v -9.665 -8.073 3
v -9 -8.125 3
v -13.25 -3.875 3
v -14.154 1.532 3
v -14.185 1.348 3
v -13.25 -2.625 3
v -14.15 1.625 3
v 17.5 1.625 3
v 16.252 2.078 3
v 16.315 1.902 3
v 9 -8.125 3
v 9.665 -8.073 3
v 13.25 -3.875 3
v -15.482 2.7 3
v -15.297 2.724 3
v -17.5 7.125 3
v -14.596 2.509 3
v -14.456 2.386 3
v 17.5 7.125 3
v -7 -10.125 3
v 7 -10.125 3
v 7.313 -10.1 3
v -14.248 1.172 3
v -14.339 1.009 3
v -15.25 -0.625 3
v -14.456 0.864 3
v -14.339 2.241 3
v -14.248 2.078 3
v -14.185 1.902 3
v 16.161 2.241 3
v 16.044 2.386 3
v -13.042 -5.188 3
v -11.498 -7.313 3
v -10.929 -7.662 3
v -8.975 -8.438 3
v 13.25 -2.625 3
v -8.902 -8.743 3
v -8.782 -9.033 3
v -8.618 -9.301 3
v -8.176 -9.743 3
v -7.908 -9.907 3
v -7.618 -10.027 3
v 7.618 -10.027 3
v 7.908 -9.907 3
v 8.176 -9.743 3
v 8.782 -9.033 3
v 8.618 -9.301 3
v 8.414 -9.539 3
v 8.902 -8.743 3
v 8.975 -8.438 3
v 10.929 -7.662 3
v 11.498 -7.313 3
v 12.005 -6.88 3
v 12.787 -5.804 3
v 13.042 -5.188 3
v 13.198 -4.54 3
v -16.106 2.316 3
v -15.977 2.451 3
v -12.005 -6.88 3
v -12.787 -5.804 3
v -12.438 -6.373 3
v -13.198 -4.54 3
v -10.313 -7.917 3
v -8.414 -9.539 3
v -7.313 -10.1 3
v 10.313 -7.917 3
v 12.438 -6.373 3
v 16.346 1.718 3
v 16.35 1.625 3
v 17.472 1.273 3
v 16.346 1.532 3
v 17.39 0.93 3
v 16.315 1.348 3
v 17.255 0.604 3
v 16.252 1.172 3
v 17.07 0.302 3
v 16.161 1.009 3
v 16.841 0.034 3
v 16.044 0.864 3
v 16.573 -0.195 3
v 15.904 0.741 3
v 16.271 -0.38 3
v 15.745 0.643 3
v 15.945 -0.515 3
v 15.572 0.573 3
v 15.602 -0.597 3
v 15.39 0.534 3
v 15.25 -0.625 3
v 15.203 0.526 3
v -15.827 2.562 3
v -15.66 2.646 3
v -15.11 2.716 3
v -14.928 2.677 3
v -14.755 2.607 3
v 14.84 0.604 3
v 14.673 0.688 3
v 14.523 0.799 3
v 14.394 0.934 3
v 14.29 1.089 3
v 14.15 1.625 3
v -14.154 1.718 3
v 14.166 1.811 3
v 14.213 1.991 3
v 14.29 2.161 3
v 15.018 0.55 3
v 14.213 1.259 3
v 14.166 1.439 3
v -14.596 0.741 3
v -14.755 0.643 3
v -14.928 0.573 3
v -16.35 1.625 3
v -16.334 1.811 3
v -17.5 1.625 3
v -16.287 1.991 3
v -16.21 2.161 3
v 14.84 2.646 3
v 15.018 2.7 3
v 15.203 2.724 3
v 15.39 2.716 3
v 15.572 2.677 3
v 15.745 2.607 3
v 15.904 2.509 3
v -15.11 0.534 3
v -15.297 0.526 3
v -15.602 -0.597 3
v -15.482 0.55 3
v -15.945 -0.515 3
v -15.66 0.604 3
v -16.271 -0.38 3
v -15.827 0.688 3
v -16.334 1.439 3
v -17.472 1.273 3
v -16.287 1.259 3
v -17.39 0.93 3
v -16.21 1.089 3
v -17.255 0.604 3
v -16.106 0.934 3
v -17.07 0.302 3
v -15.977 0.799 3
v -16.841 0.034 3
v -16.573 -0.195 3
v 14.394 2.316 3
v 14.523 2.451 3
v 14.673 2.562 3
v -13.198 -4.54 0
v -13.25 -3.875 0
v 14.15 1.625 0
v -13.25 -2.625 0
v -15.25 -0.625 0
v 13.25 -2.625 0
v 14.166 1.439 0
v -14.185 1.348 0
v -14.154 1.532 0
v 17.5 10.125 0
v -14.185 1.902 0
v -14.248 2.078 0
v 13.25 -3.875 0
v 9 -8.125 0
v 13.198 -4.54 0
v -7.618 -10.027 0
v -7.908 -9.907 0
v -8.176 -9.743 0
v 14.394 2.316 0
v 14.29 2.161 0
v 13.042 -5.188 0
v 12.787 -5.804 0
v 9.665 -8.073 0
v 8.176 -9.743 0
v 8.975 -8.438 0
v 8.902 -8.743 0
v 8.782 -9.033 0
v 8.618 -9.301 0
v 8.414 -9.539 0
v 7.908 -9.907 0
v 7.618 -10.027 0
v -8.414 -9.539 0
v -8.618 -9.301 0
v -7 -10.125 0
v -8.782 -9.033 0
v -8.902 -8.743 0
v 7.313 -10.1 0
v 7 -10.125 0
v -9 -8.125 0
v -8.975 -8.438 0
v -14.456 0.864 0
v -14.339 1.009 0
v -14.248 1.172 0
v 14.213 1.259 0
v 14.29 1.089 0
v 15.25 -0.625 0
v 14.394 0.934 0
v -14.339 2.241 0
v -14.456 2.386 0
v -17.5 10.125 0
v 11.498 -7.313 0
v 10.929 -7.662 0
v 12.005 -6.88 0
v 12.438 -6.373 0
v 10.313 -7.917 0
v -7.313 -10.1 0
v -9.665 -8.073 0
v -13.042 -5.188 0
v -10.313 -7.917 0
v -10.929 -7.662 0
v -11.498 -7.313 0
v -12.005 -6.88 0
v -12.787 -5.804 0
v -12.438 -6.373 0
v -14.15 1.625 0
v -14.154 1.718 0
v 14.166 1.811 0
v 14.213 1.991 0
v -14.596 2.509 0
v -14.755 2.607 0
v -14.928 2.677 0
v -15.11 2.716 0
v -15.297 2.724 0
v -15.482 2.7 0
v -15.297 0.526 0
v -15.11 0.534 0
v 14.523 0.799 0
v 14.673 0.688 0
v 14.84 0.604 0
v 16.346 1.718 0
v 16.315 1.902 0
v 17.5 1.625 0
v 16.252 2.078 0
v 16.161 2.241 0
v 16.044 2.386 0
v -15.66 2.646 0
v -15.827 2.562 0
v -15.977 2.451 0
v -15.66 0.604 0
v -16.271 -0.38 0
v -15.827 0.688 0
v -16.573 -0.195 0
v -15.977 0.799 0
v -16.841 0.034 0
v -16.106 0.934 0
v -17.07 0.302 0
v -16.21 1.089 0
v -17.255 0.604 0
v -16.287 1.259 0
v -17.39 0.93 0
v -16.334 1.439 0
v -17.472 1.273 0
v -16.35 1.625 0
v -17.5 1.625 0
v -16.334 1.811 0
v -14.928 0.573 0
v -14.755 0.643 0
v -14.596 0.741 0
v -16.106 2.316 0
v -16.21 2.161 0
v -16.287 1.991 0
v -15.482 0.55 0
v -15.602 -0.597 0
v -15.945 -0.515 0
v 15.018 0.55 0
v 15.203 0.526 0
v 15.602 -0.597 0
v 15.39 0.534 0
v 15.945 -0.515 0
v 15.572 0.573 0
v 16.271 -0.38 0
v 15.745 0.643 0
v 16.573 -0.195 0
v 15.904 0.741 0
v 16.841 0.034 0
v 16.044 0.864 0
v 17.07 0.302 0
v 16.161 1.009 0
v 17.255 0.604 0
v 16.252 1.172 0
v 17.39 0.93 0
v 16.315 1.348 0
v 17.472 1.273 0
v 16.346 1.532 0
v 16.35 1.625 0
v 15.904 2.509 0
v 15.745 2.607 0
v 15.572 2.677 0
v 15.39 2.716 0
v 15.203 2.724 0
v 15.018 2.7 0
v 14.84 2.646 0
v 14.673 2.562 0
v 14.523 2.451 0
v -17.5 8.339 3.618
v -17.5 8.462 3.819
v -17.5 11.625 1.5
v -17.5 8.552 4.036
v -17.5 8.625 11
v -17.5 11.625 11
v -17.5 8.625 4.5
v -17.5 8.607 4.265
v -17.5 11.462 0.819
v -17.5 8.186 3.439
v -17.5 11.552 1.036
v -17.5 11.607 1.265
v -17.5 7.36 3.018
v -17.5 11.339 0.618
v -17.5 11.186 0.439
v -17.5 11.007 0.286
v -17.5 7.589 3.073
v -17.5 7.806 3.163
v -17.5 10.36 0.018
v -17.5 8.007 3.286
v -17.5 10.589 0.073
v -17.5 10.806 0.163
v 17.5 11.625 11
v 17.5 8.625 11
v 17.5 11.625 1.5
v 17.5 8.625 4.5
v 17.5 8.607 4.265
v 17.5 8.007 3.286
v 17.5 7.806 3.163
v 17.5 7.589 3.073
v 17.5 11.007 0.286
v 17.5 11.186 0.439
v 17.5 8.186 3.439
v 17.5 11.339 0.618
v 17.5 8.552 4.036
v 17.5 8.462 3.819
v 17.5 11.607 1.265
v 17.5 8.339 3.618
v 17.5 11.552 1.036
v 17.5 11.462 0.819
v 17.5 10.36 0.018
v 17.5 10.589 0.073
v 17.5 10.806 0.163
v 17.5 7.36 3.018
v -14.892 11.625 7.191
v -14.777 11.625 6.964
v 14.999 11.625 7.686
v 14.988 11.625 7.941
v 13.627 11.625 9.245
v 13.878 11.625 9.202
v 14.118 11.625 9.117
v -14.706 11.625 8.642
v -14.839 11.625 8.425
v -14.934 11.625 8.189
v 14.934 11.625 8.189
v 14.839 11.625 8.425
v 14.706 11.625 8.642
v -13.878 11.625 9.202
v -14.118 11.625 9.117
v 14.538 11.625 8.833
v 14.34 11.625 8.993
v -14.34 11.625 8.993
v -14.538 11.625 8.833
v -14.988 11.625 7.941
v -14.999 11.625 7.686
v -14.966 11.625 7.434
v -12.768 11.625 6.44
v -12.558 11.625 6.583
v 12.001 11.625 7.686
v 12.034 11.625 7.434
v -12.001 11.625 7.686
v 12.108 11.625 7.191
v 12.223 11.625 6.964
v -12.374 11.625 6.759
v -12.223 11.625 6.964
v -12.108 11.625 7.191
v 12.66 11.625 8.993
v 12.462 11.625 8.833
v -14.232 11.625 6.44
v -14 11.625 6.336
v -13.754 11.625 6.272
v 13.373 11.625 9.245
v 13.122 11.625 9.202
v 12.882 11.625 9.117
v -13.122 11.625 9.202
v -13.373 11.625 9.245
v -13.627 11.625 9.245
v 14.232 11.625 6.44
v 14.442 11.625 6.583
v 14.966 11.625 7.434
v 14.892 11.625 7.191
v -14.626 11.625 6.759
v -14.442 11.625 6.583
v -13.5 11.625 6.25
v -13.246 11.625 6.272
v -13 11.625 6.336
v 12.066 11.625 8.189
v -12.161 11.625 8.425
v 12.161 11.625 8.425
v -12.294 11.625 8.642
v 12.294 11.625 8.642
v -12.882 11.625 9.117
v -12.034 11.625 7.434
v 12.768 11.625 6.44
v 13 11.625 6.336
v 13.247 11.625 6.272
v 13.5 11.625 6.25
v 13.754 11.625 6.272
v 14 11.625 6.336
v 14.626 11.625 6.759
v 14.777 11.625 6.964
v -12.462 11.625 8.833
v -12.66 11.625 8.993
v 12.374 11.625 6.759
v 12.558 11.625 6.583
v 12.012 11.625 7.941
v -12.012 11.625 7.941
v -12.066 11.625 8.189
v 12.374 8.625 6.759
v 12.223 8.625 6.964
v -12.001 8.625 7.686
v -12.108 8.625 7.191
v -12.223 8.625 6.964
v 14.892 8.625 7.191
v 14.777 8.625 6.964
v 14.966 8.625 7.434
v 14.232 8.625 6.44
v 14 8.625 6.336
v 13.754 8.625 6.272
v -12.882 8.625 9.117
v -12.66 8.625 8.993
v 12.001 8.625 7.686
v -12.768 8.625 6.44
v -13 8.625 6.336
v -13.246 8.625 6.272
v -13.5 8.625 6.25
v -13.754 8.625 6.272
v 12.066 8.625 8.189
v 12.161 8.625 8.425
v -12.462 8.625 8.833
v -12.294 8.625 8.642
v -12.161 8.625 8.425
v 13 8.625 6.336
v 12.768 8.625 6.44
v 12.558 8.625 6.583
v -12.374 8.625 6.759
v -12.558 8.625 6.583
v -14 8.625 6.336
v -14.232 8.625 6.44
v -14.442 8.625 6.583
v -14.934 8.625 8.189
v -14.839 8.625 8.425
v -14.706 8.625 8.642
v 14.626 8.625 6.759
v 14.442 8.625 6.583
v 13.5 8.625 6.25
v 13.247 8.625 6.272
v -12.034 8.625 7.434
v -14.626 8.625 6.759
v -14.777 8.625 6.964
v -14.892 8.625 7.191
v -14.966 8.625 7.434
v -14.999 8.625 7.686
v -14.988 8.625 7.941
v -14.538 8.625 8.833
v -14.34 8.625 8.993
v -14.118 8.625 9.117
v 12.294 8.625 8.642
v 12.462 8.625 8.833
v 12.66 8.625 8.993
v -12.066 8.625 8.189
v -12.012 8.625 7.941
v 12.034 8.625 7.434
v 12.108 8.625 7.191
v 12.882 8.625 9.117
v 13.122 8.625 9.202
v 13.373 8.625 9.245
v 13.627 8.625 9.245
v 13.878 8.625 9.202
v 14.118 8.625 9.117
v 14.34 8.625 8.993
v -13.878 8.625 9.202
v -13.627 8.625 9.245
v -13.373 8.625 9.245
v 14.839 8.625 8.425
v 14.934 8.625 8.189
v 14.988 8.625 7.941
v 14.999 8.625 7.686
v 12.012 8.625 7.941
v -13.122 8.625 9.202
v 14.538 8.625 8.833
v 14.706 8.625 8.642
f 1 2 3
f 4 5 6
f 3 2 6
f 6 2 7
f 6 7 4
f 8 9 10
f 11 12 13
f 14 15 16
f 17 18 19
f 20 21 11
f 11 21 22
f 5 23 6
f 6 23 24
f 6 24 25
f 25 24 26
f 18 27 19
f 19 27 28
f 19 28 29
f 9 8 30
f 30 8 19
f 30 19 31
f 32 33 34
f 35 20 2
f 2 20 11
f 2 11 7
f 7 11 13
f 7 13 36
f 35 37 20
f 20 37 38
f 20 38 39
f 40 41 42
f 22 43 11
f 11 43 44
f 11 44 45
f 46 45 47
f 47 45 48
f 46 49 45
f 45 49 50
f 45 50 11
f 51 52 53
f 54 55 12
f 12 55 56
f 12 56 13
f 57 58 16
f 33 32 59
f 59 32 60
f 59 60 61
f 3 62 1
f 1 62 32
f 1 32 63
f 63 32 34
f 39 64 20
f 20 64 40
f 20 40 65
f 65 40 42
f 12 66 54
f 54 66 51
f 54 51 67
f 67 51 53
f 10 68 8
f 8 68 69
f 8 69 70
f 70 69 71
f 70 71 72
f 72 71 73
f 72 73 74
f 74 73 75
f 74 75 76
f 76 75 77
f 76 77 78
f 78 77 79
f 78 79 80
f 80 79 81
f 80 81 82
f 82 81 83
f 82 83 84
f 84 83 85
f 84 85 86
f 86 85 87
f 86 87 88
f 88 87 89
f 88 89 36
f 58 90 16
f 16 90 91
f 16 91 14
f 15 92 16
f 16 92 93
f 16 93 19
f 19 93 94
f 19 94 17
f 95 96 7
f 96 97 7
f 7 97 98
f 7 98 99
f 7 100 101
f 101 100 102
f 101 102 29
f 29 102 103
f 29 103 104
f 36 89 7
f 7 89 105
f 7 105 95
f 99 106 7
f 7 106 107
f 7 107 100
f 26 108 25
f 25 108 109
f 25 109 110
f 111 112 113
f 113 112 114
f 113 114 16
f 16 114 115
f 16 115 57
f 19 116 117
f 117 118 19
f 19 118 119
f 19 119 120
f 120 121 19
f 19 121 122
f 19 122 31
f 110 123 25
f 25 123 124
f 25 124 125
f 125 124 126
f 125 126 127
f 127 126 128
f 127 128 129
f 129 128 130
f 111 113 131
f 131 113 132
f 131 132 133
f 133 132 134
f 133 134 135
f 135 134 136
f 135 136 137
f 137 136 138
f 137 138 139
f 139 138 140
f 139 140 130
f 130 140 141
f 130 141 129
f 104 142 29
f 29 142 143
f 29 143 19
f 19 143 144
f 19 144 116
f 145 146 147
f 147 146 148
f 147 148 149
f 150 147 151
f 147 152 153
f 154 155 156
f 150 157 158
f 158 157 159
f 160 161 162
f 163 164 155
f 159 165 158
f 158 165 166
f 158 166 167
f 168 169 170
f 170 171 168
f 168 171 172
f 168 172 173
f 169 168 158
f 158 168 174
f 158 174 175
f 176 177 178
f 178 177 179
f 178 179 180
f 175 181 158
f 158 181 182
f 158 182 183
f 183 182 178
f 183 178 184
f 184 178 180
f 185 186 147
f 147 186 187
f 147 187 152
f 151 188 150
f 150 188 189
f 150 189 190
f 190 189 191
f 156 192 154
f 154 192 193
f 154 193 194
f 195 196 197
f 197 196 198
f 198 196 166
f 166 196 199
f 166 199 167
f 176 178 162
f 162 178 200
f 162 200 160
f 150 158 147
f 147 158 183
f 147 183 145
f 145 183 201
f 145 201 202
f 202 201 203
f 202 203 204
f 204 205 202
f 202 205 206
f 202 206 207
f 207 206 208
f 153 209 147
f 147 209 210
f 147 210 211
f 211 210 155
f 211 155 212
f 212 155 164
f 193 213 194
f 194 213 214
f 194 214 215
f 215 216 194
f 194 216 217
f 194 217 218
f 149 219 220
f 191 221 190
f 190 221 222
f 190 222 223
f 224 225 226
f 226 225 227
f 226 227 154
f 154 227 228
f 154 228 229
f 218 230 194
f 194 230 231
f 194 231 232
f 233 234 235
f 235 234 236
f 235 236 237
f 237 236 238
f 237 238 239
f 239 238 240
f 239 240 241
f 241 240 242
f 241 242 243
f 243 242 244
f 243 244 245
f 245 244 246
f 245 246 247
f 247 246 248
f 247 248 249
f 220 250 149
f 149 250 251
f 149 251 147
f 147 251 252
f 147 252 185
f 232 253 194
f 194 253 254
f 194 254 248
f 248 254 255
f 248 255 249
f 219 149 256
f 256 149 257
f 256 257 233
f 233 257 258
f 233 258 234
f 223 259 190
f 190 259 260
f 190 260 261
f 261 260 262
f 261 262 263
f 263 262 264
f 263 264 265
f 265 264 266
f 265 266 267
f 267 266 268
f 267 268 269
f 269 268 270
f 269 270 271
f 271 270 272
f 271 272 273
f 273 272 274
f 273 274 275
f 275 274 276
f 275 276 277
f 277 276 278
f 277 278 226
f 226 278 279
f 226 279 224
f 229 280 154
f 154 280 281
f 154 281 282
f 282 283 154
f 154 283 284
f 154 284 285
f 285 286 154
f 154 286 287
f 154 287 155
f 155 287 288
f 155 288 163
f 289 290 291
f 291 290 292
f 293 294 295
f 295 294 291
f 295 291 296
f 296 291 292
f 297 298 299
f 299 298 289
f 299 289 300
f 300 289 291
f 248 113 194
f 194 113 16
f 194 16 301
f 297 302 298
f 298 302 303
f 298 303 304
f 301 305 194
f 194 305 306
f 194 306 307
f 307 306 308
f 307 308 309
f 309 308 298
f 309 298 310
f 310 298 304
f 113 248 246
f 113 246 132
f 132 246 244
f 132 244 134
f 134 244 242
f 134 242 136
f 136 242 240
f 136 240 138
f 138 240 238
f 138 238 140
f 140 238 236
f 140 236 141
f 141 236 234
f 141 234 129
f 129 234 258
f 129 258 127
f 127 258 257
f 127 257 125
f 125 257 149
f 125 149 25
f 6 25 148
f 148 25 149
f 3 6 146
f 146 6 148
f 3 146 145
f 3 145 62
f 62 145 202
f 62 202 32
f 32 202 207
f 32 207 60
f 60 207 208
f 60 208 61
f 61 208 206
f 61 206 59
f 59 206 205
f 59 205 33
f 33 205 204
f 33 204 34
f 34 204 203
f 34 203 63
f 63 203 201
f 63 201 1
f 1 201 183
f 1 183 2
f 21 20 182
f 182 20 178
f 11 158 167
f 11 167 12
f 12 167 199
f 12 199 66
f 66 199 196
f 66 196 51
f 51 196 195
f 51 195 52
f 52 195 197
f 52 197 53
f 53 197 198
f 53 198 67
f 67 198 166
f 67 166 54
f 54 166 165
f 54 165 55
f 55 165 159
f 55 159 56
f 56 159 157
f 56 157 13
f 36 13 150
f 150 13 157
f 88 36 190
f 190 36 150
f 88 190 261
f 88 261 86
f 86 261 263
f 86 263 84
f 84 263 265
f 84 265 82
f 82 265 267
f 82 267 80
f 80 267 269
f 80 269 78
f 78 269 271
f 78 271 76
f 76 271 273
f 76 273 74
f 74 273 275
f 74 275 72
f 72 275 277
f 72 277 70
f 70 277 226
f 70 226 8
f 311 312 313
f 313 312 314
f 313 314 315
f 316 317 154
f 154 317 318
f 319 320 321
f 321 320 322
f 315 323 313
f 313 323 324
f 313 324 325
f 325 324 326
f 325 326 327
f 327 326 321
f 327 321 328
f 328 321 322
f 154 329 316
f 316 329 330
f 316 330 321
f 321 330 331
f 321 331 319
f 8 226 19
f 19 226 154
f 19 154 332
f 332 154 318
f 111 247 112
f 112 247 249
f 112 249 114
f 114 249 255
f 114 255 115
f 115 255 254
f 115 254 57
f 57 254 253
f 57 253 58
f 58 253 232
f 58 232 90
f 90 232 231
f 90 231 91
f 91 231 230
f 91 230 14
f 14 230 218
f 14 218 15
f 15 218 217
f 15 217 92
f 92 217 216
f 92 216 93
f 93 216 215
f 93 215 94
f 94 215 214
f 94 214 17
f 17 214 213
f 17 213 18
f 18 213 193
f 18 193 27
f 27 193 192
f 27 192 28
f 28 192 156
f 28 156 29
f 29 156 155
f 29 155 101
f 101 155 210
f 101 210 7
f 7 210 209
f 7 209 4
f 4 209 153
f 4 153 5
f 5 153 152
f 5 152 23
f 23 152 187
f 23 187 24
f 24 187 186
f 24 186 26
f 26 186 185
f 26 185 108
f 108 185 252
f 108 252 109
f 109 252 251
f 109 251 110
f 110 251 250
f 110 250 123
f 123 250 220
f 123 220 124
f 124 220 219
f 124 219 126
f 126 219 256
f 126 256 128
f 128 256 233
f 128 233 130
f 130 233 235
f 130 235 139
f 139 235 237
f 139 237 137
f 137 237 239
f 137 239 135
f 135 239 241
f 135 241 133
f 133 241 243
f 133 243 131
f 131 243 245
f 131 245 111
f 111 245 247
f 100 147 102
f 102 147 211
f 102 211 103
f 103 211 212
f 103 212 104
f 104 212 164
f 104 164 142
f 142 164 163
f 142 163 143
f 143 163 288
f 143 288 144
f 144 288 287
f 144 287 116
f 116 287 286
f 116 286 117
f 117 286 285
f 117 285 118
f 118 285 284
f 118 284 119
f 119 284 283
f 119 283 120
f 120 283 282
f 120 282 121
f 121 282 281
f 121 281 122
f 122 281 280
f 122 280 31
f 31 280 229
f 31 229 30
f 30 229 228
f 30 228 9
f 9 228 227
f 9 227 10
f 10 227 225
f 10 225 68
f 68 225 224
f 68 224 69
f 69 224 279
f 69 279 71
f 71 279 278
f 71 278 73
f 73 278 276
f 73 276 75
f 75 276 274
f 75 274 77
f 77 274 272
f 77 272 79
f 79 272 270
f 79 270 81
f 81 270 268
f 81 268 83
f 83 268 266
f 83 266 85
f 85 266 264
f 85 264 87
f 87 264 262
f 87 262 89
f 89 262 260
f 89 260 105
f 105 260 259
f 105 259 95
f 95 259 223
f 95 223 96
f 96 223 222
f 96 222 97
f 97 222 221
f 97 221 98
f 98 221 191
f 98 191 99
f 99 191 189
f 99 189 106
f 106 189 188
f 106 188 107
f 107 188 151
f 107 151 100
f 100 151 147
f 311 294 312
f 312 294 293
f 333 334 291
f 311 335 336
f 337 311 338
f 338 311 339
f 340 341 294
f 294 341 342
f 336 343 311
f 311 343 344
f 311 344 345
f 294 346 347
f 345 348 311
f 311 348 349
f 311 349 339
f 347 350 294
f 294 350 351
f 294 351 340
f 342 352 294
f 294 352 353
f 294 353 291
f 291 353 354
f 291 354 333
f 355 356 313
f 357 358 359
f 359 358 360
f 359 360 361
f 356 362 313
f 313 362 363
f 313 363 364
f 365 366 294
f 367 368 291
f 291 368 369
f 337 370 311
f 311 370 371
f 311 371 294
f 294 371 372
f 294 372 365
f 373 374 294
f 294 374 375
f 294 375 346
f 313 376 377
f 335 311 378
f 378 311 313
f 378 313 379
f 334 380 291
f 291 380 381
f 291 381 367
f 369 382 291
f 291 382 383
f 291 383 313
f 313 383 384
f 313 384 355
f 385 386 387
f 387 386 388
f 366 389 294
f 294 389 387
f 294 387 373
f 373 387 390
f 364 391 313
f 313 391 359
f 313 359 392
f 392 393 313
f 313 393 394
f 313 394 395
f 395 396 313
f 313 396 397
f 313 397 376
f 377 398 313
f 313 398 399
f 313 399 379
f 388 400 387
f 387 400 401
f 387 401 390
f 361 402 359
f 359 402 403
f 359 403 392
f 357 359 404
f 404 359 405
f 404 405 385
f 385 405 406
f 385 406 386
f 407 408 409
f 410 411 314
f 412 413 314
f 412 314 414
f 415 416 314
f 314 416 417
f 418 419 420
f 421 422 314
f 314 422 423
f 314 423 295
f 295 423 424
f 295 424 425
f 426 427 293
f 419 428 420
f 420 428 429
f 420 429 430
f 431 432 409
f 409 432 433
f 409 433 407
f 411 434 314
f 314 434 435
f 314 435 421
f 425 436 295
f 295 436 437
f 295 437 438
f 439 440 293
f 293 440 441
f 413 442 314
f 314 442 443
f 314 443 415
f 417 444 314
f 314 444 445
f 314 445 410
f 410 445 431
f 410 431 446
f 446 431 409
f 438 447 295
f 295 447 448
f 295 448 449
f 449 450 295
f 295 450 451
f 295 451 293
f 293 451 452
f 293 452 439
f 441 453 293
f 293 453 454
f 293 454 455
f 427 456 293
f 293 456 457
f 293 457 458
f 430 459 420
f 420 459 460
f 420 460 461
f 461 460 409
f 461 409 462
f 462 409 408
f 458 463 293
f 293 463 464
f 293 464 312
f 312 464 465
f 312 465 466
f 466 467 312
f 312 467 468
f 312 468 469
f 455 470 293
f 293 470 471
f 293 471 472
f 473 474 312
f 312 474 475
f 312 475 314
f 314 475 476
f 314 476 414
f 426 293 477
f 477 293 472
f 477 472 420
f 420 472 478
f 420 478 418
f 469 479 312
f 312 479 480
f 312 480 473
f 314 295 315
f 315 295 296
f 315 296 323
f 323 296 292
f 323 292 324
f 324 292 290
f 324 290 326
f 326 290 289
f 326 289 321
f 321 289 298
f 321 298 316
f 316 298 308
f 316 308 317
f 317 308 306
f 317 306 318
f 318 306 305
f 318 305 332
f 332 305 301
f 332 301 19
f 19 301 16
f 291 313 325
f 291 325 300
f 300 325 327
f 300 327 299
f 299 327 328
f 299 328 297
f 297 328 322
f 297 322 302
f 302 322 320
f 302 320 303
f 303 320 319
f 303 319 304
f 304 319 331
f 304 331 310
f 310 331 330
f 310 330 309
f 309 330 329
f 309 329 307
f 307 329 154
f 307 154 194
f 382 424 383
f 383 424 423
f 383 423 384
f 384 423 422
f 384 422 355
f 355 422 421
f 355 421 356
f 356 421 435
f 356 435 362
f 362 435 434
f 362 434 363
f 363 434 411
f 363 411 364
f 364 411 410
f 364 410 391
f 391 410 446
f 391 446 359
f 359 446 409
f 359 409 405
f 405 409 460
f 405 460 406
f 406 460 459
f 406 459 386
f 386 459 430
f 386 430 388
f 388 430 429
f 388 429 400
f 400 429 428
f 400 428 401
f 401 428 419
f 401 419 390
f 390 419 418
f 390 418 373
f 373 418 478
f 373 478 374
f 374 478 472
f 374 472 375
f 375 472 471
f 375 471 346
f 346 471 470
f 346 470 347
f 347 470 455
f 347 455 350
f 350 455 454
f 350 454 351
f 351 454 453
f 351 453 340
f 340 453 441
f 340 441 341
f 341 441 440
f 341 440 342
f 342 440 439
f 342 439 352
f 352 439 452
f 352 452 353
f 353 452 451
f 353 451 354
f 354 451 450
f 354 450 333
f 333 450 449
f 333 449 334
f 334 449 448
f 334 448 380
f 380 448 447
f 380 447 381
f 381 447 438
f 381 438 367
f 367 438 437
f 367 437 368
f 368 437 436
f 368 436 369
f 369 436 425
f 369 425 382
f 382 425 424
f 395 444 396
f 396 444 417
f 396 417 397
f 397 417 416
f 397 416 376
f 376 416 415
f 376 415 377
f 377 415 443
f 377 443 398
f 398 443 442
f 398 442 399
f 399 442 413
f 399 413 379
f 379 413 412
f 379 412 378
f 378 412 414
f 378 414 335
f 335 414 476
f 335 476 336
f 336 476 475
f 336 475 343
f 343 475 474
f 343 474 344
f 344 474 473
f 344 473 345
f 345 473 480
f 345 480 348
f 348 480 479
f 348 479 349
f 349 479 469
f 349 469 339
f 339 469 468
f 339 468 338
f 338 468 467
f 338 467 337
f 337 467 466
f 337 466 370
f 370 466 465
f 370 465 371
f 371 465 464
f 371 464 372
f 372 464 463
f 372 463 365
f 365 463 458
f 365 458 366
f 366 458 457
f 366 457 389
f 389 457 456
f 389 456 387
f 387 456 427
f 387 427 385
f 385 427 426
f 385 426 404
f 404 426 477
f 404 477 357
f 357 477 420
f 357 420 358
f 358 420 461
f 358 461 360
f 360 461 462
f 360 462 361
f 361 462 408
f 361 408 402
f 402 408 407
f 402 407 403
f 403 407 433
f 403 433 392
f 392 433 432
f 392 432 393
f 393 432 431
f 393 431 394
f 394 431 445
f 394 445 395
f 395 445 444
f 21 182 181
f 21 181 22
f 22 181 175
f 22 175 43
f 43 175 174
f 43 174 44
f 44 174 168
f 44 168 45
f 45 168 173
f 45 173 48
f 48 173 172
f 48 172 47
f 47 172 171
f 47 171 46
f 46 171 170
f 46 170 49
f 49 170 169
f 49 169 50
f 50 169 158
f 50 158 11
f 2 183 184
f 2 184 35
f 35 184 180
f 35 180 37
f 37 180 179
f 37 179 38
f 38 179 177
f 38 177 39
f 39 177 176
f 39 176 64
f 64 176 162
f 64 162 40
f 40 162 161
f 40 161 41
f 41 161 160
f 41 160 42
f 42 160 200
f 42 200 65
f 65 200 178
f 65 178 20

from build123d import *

# Parameters (mm, degrees)
SKETCH_1_R          = 1.1
EXTRUDE_1_DEPTH     = 3
SKETCH_2_W          = 35
SKETCH_2_H          = 11
EXTRUDE_2_DEPTH     = 3
FILLET_1_R          = 1.5
SKETCH_3_R          = 1.5
CUT_EXTRUDE_1_DEPTH = 3
FILLET_2_R          = 2


with BuildPart() as part:
    # 草图1 → 凸台-拉伸1 (new body)
    with BuildSketch(Plane.XY):
        with BuildLine():
            Line((-13.25, -3.875), (-13.25, -2.625))
            Line((-13.25, -2.625), (-15.25, -0.625))
            ThreePointArc((-15.25, -0.625), (-16.840990258, 0.034009742), (-17.5, 1.625))
            Line((-17.5, 1.625), (-17.5, 8.625))
            Line((-17.5, 8.625), (-13.25, 8.625))
            Line((-13.25, 8.625), (13.25, 8.625))
            Line((13.25, 8.625), (17.5, 8.625))
            Line((17.5, 8.625), (17.5, 1.625))
            ThreePointArc((17.5, 1.625), (16.840990258, 0.034009742), (15.25, -0.625))
            Line((15.25, -0.625), (13.25, -2.625))
            Line((13.25, -2.625), (13.25, -3.875))
            ThreePointArc((13.25, -3.875), (12.00520382, -6.88020382), (9, -8.125))
            Line((9, -8.125), (9, -10.125))
            Line((9, -10.125), (-9, -10.125))
            Line((-9, -10.125), (-9, -8.125))
            ThreePointArc((-9, -8.125), (-12.00520382, -6.88020382), (-13.25, -3.875))
        make_face()
        with Locations((-15.25, 1.625)):
            Circle(SKETCH_1_R, mode=Mode.SUBTRACT)
        with Locations((15.25, 1.625)):
            Circle(SKETCH_1_R, mode=Mode.SUBTRACT)
    extrude(amount=EXTRUDE_1_DEPTH)

    # 草图2 → 凸台-拉伸2 (add)
    with BuildSketch(Plane(origin=(0, 8.625, 0), x_dir=(1, 0, 0), z_dir=(0, 1, 0))):
        with Locations((0, -5.5)):
            Rectangle(SKETCH_2_W, SKETCH_2_H)
    extrude(amount=EXTRUDE_2_DEPTH)

    # 圆角1
    fillet_1_edges = [part.edges().sort_by_distance(p)[0] for p in [
        (0, 8.625, 3),
        (0, 11.625, 0),
    ]]
    fillet(fillet_1_edges, radius=FILLET_1_R)

    # 草图3 → 切除-拉伸1 (cut)
    with BuildSketch(Plane.XZ.offset(-8.625)):
        with Locations(Location((13.5, 7.75, 0), (0, 0, 270))):
            Circle(SKETCH_3_R)
        with Locations(Location((-13.5, 7.75, 0), (0, 0, 270))):
            Circle(SKETCH_3_R)
    extrude(amount=-CUT_EXTRUDE_1_DEPTH, mode=Mode.SUBTRACT)

    # 圆角2
    fillet_2_edges = [part.edges().sort_by_distance(p)[0] for p in [
        (9, -10.125, 1.5),
        (-9, -10.125, 1.5),
    ]]
    fillet(fillet_2_edges, radius=FILLET_2_R - 0.0001)  # a hair under: the kernel refuses the full size


solid = part.part
